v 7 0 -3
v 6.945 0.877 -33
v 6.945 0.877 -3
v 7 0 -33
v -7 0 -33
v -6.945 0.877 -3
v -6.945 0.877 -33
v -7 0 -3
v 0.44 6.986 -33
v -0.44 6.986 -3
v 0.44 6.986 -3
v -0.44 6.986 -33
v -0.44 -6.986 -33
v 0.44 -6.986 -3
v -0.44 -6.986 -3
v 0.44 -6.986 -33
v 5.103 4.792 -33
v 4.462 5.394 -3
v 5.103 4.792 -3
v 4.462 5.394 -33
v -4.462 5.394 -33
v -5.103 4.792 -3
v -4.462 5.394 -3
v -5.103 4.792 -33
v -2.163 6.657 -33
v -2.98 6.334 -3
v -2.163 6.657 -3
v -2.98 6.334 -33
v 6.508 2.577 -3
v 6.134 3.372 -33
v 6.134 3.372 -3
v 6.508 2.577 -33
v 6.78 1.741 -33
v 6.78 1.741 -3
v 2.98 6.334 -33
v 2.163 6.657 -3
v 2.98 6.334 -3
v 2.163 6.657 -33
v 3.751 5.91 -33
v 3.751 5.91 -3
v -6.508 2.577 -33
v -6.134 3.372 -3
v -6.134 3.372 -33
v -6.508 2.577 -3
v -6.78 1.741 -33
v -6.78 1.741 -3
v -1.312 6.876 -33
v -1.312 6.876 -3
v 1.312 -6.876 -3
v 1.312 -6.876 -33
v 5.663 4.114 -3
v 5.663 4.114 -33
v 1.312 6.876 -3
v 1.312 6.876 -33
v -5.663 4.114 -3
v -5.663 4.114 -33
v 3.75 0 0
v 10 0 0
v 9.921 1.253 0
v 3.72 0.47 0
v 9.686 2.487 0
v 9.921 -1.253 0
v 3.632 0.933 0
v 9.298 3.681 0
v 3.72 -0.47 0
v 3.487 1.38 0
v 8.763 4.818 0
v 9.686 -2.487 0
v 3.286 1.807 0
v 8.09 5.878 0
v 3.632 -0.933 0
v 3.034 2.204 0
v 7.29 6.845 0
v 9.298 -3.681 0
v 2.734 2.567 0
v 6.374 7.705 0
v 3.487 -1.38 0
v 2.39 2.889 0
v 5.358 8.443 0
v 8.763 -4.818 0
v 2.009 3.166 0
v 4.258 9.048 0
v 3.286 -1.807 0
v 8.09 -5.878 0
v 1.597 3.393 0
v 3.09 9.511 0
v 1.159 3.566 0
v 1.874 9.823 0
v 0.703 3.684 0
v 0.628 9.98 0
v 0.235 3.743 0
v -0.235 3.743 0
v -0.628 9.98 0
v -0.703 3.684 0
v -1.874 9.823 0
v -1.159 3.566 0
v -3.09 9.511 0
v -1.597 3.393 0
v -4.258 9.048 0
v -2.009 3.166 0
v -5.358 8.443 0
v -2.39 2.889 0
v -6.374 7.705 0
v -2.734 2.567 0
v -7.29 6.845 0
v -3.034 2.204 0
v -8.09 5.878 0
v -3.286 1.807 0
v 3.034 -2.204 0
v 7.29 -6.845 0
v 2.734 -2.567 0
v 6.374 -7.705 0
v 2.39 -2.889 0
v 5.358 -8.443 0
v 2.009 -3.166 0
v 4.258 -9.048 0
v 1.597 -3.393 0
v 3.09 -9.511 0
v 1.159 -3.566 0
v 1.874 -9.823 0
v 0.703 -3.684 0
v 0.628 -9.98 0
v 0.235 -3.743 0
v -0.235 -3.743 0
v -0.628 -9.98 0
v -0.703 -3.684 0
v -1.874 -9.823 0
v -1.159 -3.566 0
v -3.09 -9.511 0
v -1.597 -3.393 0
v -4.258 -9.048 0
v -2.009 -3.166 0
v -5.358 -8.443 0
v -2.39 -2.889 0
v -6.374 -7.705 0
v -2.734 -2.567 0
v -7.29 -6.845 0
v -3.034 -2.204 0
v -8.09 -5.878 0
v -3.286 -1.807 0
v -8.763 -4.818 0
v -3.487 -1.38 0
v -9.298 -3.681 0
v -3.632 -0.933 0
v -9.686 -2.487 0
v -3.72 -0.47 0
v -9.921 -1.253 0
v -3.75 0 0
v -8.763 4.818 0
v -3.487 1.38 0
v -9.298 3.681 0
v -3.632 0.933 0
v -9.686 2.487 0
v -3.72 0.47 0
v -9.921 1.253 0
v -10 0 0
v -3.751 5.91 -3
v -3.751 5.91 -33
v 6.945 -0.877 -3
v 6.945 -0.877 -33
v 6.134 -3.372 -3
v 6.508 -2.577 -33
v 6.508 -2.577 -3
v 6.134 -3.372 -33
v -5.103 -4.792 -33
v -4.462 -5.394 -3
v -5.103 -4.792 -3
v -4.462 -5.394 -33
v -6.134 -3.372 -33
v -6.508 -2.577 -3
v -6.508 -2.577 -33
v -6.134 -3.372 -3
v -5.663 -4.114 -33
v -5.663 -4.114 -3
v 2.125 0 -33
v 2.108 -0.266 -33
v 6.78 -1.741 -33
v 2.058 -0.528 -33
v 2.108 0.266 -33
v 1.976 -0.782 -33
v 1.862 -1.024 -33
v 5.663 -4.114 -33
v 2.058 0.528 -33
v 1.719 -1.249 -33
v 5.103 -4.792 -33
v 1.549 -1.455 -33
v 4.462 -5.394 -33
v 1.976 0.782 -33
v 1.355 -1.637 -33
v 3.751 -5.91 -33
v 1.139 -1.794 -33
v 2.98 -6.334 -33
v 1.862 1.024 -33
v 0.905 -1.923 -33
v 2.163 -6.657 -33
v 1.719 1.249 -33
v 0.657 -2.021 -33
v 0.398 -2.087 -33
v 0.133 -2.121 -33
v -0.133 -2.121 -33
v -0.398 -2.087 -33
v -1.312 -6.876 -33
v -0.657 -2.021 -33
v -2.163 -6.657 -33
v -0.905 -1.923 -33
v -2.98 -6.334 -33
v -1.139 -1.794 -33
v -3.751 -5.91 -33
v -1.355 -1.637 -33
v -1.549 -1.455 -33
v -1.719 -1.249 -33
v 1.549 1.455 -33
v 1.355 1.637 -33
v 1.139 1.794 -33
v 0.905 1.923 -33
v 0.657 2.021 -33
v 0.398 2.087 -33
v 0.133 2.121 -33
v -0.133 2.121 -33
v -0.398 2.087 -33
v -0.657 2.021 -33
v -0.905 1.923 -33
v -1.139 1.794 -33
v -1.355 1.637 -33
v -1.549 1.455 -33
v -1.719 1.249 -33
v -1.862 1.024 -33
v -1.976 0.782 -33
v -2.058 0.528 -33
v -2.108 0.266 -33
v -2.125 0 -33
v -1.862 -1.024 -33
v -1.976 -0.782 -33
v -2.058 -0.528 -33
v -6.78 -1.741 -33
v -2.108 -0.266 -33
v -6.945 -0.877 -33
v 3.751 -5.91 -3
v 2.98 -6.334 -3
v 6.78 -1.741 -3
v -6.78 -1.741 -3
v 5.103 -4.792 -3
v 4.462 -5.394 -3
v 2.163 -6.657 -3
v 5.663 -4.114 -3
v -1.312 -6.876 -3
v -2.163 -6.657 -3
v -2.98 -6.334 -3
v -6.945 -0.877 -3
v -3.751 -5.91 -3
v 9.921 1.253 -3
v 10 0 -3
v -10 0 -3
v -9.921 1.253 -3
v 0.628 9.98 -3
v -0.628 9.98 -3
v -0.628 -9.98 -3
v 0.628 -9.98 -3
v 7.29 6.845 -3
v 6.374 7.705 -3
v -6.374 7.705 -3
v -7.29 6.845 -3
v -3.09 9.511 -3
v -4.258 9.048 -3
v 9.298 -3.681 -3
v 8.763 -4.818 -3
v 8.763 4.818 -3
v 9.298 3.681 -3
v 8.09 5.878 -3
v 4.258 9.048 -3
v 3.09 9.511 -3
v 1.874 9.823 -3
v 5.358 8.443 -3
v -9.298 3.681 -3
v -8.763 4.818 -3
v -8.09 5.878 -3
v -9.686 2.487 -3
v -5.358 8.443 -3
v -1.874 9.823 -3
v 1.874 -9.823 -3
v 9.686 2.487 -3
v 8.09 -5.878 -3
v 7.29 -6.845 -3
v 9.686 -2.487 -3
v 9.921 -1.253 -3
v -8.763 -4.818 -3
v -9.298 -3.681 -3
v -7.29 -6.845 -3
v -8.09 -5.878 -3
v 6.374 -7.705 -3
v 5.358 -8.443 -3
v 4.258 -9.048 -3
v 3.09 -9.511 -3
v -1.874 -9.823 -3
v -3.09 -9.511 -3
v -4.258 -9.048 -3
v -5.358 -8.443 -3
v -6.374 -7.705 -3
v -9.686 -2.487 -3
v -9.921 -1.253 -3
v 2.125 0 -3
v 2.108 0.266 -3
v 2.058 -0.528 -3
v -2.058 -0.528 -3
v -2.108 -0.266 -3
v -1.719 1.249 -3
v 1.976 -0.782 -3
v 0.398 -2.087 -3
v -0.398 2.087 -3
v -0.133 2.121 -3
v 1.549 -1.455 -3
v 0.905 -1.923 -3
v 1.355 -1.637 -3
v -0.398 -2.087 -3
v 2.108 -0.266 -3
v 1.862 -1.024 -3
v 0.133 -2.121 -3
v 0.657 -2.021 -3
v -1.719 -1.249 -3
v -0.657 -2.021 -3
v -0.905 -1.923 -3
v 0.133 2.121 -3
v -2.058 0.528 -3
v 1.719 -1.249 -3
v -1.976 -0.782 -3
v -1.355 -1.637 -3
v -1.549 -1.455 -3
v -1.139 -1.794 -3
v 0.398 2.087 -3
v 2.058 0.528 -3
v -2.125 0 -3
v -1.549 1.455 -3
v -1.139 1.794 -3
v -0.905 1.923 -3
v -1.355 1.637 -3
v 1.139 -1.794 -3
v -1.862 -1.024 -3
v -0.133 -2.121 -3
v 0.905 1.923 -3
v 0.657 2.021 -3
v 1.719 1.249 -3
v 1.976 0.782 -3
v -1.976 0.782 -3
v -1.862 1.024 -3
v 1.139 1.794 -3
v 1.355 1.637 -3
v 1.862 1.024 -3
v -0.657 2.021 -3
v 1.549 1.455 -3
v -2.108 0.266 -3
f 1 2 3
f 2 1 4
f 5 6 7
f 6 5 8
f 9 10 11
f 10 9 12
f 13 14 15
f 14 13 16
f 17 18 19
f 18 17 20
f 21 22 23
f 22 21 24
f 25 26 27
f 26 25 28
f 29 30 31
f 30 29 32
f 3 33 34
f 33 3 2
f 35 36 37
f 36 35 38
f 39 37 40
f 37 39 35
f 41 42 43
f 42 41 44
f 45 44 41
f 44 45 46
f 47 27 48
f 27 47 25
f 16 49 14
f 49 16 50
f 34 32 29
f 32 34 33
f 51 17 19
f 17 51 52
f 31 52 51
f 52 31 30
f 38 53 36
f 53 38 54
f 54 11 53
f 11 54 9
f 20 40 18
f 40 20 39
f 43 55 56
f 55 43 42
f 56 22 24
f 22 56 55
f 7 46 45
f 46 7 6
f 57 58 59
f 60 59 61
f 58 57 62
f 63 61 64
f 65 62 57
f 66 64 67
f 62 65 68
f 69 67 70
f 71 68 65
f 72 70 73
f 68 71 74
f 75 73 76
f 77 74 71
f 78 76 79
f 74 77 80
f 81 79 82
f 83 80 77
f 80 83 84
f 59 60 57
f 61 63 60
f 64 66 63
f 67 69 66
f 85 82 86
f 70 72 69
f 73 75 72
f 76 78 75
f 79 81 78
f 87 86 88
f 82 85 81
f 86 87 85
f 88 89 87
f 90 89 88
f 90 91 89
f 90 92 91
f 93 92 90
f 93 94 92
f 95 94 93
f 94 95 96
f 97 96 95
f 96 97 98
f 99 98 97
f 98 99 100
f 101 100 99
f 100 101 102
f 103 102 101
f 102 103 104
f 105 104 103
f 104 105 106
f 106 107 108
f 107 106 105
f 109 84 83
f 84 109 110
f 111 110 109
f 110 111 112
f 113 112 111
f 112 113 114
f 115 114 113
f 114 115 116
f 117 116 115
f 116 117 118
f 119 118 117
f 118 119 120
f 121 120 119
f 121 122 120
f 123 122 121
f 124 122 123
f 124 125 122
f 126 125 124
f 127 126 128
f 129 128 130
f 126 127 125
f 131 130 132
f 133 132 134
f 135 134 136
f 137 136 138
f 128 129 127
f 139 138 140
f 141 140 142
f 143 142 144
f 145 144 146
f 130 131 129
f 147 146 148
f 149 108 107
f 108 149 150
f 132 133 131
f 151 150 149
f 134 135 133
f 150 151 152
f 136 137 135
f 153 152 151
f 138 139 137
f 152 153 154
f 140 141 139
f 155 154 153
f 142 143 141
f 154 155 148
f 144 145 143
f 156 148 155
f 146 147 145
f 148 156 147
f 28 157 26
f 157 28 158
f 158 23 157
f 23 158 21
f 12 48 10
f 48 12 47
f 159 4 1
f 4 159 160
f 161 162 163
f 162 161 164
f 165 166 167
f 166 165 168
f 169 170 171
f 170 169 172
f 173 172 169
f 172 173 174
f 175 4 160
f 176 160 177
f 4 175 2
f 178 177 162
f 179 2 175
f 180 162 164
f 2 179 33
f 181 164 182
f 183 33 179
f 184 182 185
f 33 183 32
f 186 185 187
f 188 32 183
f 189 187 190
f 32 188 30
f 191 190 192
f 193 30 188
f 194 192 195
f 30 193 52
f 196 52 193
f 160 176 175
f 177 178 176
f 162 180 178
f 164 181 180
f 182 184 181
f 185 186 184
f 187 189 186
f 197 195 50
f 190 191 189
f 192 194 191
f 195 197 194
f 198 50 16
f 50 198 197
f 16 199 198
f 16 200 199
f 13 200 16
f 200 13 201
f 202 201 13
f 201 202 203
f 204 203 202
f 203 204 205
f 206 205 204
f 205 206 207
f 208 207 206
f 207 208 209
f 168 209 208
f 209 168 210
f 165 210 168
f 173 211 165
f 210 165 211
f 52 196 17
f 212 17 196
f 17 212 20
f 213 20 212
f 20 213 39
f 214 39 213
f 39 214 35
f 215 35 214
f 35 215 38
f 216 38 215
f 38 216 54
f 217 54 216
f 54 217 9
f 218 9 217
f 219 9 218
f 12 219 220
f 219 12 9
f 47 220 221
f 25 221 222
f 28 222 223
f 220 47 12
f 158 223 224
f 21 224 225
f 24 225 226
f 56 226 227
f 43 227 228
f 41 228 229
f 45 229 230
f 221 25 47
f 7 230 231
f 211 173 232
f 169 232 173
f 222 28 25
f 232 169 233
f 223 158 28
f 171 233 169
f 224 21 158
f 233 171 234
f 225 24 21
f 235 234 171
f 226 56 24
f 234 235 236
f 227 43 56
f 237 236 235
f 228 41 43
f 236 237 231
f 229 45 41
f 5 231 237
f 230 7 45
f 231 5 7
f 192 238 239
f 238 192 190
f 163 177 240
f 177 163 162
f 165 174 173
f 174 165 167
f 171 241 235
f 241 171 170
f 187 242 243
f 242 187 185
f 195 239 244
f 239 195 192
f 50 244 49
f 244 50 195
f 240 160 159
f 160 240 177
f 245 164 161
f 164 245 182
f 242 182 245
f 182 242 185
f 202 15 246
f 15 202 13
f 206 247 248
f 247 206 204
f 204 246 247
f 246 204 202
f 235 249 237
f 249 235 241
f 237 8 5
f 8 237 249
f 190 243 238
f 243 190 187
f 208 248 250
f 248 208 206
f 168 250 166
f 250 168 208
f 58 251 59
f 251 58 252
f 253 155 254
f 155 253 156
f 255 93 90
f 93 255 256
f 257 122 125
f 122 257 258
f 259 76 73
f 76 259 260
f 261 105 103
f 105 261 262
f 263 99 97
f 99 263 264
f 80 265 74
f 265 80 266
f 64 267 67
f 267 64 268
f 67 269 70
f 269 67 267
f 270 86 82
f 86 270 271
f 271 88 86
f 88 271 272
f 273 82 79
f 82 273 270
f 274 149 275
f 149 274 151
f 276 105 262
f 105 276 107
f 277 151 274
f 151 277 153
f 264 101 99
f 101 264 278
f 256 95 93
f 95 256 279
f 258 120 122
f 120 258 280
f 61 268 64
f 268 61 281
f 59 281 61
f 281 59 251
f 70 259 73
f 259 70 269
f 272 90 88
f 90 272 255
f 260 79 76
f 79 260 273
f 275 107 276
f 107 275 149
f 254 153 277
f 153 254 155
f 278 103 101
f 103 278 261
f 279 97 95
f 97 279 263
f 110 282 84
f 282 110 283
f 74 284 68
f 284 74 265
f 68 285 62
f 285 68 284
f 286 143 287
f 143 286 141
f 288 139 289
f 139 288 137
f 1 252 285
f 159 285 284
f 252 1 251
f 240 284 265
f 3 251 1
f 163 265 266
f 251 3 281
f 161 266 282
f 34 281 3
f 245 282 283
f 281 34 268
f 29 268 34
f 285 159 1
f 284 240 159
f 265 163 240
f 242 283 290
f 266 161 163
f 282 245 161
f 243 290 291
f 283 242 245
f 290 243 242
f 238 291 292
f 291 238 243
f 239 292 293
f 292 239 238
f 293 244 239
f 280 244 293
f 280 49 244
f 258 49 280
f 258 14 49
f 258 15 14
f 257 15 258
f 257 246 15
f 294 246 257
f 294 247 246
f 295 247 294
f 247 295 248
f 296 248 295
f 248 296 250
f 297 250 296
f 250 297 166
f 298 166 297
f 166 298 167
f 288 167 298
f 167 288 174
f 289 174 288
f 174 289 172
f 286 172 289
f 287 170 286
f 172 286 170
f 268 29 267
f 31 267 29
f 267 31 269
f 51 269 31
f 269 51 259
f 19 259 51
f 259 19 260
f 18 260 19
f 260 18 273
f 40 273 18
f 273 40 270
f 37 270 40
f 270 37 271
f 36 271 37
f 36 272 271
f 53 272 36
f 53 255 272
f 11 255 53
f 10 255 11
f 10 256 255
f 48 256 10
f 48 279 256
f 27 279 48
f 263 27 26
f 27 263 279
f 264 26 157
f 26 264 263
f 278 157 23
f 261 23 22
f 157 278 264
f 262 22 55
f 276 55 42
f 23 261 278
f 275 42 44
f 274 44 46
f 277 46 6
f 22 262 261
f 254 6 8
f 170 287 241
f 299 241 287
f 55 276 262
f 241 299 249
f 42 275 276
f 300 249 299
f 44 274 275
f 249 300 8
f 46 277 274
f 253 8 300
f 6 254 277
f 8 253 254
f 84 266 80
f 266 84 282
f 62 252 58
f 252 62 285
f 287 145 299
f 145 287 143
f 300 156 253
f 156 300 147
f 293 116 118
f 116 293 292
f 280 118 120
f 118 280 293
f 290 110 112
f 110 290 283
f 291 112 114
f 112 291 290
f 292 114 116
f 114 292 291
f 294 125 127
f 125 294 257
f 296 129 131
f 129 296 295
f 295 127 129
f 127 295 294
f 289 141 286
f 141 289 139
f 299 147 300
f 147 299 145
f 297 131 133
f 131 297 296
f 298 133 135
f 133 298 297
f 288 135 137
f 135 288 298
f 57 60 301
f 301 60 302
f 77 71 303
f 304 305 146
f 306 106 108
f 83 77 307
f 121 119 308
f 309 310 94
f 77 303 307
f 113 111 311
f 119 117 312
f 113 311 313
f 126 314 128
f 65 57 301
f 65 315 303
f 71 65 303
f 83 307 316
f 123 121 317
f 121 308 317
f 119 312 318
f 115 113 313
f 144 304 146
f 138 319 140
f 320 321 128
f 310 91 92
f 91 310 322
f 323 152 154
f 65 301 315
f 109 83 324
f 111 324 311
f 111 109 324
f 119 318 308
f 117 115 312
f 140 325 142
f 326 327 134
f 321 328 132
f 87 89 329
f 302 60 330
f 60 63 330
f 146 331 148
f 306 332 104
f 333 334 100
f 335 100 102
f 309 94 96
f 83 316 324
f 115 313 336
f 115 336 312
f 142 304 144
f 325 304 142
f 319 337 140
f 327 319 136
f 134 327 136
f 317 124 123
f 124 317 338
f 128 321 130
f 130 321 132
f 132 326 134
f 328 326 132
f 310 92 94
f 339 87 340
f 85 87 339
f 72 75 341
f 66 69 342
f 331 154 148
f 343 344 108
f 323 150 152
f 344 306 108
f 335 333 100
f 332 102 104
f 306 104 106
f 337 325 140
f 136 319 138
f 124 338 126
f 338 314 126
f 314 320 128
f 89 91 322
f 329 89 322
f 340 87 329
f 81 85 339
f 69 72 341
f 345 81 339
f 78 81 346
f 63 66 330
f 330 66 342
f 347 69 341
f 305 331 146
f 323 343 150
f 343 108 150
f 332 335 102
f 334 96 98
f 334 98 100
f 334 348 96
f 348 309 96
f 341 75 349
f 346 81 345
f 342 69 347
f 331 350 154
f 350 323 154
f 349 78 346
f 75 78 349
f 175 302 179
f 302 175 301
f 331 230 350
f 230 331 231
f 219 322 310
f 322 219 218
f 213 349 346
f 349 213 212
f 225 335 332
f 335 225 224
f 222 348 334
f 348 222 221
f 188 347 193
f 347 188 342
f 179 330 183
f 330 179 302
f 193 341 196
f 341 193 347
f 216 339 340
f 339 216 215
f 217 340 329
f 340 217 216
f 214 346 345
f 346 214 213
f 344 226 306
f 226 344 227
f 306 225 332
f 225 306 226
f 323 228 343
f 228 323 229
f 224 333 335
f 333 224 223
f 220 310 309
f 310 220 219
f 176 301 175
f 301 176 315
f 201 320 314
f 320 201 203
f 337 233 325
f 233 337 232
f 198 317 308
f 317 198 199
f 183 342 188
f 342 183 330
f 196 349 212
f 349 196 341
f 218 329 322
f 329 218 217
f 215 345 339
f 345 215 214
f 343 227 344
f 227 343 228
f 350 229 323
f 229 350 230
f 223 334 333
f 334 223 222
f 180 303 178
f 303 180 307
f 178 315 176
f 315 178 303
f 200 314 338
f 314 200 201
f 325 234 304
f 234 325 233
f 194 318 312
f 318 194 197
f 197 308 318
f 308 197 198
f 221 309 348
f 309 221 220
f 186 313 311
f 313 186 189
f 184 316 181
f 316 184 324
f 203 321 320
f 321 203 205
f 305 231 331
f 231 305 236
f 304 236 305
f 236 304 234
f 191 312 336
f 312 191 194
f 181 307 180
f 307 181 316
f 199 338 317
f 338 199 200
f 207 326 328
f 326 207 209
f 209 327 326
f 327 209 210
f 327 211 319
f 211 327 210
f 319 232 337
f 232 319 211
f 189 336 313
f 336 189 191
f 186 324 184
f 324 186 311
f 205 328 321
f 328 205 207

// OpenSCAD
$fn = 50;


difference() {
	union() {
		translate(v = [0, 0, -33.0000000000]) {
			cylinder(h = 33, r = 7.0000000000);
		}
		translate(v = [0, 0, -3.0000000000]) {
			cylinder(h = 3, r = 10.0000000000);
		}
	}
	union() {
		translate(v = [0, 0, 0]) {
			rotate(a = [0, 0, 0]) {
				difference() {
					union() {
						#translate(v = [0, 0, -33.0000000000]) {
							cylinder(h = 33, r = 2.0000000000);
						}
						#translate(v = [0, 0, -3]) {
							cylinder(h = 3, r1 = 2.1250000000, r2 = 3.7500000000);
						}
						#translate(v = [0, 0, -33.0000000000]) {
							cylinder(h = 33, r = 2.1250000000);
						}
						#translate(v = [0, 0, -33.0000000000]) {
							cylinder(h = 33, r = 2.0000000000);
						}
					}
					union();
				}
			}
		}
	}
}
